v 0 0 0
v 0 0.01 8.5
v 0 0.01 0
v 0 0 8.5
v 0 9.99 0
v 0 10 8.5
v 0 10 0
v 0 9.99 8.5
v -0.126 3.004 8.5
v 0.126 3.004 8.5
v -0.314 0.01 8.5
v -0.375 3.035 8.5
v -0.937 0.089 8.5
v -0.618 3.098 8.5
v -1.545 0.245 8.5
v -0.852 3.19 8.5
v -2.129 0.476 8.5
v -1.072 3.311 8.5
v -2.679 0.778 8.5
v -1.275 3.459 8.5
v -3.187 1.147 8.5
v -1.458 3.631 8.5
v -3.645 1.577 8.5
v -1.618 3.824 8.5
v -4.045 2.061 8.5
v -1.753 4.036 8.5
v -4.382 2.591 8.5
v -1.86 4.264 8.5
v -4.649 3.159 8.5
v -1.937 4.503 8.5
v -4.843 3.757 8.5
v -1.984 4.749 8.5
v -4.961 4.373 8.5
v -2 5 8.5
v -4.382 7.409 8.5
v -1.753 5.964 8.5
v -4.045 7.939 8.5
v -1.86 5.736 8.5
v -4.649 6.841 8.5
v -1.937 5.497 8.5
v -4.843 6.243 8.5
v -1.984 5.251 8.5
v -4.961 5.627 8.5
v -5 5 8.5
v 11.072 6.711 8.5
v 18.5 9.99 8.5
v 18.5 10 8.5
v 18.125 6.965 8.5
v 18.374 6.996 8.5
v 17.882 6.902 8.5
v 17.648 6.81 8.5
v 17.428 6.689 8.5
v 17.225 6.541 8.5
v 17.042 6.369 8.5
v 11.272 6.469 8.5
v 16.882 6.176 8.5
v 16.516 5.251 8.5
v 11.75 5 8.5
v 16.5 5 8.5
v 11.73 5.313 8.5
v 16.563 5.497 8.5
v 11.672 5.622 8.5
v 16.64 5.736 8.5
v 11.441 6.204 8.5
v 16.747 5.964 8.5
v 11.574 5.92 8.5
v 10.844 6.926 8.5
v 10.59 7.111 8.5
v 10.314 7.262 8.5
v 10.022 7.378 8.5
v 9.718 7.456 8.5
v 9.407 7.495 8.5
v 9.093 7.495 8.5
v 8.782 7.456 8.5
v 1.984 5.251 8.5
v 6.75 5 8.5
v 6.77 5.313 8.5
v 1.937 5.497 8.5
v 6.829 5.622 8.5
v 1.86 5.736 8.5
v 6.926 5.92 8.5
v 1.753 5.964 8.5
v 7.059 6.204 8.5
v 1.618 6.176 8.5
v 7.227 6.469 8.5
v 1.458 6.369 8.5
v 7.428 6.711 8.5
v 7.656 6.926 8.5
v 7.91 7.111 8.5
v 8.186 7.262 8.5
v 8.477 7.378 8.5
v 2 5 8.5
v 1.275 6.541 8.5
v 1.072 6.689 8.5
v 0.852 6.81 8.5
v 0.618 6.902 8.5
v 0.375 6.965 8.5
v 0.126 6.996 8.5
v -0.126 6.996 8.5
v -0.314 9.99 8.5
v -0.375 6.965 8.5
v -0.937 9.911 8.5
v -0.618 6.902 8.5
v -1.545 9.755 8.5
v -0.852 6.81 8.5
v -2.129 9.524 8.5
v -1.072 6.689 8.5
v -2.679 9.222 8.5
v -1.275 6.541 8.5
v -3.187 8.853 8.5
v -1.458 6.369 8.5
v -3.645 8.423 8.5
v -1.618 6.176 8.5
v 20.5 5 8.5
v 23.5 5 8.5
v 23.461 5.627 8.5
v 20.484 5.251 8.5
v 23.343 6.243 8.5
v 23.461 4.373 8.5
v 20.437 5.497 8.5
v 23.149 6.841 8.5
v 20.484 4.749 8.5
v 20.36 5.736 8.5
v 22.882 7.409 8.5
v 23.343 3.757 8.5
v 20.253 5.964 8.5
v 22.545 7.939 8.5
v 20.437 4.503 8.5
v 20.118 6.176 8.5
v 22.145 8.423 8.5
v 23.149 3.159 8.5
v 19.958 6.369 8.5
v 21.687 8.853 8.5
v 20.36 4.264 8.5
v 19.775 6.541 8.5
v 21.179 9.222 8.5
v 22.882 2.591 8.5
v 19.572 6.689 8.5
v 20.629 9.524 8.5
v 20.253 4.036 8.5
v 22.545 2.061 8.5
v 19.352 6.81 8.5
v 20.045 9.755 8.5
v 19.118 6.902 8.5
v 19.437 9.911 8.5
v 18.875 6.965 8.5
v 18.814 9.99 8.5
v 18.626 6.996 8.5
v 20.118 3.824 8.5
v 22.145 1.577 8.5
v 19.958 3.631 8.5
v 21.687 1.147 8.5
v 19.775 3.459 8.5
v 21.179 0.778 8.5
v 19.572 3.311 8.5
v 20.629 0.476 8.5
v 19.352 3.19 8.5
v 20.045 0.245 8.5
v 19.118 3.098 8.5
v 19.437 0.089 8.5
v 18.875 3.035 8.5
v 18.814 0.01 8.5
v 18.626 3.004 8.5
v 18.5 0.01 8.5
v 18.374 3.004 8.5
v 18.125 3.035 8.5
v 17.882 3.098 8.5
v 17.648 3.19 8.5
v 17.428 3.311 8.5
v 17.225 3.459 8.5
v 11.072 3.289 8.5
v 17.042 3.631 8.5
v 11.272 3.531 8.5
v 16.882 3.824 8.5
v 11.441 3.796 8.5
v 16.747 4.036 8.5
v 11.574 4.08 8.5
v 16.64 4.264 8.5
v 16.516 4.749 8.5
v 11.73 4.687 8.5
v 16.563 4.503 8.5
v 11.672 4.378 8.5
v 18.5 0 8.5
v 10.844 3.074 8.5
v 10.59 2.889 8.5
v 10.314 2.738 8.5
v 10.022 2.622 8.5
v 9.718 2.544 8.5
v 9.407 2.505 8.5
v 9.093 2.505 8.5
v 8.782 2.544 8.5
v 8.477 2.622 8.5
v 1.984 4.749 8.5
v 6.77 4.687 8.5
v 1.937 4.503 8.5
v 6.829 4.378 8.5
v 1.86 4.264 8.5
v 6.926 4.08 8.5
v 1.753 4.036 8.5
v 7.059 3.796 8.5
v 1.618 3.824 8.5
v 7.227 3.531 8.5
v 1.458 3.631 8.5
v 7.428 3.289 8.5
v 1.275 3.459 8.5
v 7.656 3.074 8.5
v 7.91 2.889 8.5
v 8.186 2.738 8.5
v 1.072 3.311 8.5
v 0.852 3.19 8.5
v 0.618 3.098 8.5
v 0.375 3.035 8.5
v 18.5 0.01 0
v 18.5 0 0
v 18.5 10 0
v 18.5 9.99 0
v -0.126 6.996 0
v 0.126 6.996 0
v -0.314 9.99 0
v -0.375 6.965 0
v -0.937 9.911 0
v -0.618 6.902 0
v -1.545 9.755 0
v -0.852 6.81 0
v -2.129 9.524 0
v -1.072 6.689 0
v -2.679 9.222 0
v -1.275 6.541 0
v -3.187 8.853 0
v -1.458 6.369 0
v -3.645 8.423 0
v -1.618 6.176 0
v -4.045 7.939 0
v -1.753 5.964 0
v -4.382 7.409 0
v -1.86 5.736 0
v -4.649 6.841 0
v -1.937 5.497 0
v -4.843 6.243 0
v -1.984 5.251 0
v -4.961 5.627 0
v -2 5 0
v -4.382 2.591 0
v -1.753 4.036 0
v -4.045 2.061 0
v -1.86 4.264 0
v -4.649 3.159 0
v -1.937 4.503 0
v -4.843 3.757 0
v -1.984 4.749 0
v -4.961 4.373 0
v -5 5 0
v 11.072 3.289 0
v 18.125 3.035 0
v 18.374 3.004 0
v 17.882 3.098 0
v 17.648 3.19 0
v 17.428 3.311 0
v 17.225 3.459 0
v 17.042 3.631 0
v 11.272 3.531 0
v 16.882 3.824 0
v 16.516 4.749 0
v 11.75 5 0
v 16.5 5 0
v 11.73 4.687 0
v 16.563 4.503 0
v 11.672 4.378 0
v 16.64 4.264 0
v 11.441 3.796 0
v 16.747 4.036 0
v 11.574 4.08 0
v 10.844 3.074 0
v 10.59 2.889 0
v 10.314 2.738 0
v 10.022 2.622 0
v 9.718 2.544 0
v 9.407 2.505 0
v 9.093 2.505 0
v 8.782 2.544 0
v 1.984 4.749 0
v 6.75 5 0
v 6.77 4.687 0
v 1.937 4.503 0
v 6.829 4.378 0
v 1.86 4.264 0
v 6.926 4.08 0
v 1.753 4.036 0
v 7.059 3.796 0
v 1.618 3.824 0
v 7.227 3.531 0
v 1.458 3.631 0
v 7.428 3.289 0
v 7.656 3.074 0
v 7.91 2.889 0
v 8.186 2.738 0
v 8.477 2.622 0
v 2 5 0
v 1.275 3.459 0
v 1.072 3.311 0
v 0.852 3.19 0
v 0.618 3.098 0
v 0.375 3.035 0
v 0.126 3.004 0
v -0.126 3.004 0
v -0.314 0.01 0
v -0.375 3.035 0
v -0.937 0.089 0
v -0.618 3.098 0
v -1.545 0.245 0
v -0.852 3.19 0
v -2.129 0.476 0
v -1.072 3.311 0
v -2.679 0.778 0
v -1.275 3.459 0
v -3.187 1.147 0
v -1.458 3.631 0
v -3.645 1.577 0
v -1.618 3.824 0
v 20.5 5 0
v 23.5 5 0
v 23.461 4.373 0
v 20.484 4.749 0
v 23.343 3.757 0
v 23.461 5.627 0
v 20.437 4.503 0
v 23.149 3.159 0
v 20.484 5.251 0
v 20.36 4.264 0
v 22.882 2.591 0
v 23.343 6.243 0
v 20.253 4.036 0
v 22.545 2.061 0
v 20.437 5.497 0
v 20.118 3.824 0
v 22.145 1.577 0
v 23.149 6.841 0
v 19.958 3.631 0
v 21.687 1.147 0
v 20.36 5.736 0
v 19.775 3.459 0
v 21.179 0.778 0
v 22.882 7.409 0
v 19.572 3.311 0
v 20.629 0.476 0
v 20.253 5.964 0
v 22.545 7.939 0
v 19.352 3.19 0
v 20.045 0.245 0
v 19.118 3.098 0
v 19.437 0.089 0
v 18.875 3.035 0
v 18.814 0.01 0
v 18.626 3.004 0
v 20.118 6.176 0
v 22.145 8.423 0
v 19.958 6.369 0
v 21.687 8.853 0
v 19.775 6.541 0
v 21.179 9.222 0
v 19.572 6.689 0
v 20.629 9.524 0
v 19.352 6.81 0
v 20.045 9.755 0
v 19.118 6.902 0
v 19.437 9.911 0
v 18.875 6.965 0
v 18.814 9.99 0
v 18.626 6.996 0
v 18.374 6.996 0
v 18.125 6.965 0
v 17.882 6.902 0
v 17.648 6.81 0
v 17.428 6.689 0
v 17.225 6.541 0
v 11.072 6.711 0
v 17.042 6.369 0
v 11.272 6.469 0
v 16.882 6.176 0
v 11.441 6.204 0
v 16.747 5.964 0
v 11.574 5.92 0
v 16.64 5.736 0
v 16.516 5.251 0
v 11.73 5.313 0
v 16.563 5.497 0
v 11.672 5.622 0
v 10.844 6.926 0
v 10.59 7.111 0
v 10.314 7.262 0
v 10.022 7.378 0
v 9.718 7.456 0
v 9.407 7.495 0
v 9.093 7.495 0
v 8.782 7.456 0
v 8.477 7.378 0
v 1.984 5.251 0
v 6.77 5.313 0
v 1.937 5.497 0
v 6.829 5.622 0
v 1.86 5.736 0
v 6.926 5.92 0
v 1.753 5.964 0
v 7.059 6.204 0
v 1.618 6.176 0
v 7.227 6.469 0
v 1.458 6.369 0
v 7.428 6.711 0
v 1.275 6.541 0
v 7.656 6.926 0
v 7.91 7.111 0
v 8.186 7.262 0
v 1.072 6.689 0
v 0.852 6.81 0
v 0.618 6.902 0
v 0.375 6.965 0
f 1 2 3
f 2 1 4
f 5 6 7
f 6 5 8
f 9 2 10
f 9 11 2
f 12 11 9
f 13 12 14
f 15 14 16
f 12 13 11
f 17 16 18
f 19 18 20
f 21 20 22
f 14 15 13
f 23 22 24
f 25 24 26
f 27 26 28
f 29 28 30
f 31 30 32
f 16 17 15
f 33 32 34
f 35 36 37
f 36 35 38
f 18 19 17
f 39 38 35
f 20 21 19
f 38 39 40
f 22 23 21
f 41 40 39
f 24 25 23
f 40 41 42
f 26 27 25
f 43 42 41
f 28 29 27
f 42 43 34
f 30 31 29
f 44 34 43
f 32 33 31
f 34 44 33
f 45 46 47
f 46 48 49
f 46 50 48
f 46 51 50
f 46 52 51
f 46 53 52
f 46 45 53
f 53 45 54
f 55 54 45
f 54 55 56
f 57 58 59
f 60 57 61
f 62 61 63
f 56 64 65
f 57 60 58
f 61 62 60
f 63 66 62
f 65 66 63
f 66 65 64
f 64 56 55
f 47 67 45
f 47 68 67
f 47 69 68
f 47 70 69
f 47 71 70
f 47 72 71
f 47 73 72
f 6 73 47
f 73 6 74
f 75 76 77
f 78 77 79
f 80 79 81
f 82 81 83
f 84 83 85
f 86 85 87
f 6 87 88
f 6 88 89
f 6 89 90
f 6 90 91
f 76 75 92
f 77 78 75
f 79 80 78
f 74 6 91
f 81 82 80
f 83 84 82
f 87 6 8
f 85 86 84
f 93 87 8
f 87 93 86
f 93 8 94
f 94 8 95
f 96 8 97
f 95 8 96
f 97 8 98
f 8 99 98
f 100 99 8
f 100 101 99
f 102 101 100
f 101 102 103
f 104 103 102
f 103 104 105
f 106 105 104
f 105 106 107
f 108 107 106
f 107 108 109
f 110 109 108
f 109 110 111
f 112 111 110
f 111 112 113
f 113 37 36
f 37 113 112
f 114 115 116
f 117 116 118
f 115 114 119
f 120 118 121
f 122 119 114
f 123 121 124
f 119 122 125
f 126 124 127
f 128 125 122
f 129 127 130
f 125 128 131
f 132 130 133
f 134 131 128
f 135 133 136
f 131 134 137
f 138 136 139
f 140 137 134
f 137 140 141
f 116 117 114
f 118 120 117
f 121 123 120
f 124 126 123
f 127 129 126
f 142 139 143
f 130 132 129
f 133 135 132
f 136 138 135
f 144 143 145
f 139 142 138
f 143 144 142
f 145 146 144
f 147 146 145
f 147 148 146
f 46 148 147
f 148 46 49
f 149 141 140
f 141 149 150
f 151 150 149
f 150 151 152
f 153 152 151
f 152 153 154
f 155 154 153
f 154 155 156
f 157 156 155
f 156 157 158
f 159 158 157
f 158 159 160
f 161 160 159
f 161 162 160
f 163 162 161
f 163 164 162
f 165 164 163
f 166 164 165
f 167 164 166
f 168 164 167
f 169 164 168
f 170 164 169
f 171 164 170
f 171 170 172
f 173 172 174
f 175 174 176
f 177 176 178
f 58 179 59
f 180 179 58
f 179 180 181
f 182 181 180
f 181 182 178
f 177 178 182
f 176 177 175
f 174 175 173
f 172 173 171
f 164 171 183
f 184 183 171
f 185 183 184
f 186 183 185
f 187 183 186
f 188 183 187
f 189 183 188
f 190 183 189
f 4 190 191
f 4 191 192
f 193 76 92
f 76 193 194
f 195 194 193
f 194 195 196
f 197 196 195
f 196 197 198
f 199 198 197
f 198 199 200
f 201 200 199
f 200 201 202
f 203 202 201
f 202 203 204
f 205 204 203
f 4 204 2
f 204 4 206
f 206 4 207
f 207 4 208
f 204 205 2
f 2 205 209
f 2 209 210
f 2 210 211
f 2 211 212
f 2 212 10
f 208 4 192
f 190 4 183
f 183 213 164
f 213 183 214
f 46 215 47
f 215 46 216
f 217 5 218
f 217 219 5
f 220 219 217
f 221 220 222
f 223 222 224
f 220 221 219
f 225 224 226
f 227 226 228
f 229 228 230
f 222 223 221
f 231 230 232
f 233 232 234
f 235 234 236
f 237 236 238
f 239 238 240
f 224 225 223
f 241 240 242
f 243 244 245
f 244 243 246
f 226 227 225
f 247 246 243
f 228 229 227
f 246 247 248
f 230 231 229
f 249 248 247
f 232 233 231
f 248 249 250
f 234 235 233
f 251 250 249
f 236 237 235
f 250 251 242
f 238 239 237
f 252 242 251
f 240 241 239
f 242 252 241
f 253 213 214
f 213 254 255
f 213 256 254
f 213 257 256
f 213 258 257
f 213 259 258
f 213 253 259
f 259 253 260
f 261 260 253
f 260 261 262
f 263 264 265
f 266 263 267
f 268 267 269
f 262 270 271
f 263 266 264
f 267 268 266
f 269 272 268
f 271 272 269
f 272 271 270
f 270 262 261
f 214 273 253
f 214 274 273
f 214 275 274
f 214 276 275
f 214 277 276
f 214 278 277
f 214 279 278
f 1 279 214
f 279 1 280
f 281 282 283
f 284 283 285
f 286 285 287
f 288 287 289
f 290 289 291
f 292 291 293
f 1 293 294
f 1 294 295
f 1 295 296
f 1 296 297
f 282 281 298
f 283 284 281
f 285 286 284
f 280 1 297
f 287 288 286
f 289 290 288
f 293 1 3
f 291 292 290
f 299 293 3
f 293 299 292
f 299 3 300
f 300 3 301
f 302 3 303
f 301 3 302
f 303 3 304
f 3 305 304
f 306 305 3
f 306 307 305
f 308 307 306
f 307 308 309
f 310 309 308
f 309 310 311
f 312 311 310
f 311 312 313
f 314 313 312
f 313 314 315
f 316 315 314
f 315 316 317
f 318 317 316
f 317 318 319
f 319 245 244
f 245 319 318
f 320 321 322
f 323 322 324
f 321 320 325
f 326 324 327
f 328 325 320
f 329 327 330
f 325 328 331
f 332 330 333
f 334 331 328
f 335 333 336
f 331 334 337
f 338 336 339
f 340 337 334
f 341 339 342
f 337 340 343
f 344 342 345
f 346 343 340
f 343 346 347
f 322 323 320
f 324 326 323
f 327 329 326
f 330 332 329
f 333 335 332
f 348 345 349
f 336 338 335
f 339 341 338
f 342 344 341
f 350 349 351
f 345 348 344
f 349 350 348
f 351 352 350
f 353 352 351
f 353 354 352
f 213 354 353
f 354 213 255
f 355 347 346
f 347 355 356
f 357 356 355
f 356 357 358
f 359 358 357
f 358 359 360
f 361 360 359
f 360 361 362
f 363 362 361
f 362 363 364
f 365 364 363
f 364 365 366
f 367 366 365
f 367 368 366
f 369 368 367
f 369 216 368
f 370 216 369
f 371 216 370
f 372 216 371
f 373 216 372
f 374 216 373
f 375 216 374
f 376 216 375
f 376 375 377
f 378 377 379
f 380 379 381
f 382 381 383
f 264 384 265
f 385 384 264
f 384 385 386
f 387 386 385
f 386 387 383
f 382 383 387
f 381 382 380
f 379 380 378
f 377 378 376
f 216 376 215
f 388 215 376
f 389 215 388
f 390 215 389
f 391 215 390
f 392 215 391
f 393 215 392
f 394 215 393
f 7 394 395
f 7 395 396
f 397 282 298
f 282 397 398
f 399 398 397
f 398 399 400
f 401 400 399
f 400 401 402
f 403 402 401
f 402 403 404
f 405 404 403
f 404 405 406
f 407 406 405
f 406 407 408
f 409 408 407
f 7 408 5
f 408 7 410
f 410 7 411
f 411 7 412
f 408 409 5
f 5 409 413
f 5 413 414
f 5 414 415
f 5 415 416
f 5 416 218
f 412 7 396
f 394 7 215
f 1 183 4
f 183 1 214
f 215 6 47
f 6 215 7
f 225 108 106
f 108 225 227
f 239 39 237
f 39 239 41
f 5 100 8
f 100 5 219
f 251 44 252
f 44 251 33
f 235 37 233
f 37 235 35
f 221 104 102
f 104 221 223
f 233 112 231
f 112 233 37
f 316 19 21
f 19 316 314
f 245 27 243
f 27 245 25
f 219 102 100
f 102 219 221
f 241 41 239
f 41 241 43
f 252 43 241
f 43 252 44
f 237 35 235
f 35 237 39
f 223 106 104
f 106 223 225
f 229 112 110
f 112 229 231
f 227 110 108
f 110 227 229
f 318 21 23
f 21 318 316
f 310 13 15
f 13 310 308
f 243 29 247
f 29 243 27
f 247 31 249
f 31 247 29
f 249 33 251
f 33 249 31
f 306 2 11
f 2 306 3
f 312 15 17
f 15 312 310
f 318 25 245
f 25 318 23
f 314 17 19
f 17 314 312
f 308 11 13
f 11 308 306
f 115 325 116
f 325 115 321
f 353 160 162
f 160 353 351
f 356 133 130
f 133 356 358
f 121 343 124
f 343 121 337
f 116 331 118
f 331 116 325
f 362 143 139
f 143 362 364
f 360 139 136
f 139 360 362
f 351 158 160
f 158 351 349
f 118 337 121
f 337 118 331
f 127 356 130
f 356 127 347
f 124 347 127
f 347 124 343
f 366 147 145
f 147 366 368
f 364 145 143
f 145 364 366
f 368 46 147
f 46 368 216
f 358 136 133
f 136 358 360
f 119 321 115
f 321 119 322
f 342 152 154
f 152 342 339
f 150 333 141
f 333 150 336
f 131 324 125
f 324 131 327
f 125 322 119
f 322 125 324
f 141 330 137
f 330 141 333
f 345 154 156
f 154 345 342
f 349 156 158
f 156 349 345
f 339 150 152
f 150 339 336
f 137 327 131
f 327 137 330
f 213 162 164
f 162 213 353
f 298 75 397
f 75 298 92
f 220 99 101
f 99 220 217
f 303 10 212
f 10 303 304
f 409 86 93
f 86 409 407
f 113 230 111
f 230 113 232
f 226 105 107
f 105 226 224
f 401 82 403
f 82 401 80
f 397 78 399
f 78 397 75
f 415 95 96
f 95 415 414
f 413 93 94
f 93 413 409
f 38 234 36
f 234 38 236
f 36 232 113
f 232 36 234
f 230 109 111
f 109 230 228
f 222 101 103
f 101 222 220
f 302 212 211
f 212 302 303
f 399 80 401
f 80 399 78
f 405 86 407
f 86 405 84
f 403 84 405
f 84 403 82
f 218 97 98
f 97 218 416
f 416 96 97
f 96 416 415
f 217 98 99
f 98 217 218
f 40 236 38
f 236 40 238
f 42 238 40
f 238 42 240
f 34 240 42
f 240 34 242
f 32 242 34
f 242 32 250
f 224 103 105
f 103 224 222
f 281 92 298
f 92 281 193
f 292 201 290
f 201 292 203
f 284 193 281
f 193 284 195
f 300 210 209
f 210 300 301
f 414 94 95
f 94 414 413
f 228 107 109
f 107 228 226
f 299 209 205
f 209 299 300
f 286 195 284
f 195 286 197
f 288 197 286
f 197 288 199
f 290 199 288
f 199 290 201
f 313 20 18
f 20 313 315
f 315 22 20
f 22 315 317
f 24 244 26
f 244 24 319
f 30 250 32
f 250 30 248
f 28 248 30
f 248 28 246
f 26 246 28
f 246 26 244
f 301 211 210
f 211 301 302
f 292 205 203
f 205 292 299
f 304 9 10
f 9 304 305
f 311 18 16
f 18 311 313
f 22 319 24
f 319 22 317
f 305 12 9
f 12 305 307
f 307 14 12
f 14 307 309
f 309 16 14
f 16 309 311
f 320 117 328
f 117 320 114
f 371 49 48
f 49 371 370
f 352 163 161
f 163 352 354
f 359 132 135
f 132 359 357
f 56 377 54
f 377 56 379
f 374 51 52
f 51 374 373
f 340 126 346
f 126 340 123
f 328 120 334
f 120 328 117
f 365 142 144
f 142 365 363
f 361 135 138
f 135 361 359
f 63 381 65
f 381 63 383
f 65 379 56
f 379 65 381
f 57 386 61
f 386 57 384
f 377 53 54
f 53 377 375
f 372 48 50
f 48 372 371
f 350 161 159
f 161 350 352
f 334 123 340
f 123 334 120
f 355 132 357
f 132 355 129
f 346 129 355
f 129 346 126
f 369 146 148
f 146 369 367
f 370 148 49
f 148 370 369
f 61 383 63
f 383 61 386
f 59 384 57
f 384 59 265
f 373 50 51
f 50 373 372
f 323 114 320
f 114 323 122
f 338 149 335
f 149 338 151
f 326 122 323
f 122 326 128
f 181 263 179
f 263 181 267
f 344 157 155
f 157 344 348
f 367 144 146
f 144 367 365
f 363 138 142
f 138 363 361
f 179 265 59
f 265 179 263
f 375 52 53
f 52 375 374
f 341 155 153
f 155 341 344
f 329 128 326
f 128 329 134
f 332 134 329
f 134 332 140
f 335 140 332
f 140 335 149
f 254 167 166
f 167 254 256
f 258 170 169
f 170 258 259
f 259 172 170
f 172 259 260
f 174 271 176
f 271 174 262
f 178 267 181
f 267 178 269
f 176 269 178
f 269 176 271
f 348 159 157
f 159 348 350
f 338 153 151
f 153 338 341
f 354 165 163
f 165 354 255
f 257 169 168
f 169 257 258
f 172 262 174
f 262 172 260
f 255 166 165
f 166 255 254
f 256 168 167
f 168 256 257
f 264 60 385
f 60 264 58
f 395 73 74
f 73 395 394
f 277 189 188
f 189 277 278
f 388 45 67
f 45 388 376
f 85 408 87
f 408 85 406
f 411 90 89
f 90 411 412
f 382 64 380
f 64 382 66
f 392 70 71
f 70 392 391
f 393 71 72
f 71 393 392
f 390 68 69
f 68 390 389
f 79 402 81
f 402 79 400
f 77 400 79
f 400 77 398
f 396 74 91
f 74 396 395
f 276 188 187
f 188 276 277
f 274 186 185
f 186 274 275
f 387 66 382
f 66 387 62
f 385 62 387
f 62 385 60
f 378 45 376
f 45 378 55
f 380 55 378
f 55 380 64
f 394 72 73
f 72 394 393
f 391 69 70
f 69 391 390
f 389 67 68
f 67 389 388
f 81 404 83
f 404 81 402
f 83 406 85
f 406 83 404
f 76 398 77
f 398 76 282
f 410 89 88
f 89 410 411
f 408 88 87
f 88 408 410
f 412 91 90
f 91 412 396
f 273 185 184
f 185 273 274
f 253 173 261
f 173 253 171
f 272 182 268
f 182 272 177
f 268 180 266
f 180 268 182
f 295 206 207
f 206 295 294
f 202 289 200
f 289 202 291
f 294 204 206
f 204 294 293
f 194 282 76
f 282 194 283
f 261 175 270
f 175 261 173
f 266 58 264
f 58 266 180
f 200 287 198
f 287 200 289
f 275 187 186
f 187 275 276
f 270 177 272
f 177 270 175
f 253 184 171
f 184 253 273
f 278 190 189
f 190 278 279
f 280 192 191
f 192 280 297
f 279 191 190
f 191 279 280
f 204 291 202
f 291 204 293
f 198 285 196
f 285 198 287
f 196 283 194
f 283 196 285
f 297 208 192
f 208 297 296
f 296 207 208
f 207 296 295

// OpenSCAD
$fn=50;
difference(){
    union(){
        cube([18.5,10,8.5]);
        translate([0,5,0])cylinder(8.5,10/2,10/2);
        translate([18.5,5,0])cylinder(8.5,10/2,10/2);
    }
    translate([0,5,0])cylinder(8.5,4/2,4/2);
    translate([18.5,5,0])cylinder(8.5,4/2,4/2);
    translate([9.25,5,0])cylinder(8.5,5/2,5/2);
}
